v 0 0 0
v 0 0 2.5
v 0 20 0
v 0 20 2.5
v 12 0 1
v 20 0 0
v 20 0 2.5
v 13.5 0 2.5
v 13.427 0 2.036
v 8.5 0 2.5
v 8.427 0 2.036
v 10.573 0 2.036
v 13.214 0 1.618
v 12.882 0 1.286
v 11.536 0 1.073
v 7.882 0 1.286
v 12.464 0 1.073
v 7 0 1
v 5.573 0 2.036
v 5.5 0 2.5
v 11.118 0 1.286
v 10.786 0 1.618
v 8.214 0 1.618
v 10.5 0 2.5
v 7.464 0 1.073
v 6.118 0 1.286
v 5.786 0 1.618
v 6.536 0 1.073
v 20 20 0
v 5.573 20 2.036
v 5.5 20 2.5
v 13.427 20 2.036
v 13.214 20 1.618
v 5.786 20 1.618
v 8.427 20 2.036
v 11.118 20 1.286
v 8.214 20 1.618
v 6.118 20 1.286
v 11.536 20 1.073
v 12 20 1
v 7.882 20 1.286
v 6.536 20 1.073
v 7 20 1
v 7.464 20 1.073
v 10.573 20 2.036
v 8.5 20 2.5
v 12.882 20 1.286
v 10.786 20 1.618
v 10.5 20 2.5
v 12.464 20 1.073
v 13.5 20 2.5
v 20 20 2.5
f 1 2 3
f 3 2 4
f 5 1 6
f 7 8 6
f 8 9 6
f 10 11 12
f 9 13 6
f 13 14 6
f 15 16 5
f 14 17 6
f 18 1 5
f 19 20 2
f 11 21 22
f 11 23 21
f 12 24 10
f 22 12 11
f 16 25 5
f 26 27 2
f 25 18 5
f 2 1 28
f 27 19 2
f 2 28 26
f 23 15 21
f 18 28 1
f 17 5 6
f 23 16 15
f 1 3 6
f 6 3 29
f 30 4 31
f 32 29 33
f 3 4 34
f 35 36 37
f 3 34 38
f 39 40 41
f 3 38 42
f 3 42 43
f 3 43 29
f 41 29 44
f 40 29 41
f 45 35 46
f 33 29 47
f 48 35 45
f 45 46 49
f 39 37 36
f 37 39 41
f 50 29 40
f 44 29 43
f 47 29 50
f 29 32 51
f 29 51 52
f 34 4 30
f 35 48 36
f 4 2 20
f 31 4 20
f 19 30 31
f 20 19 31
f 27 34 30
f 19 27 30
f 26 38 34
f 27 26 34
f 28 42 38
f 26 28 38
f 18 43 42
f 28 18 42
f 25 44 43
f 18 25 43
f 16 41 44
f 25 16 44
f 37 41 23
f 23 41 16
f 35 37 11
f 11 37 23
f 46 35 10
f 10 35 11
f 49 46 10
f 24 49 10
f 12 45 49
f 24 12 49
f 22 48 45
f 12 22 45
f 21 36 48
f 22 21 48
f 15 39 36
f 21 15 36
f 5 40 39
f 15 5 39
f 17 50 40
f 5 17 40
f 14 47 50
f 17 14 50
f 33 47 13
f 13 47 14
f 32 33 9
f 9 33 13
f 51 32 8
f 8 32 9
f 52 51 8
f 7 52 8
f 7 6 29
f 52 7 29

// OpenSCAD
difference() {
	cube([20,20,2.5]);

	translate([7, -1, 2.5]) {
		rotate([90,0,0]) {
			cylinder(r=1.5, h=50, $fn=20, center = true);
		}
		translate([5, 0,0]) {
			rotate([90,0,0]) {
				cylinder(r=1.5, h=50, $fn=20, center = true);
			}
		}
	}
}
